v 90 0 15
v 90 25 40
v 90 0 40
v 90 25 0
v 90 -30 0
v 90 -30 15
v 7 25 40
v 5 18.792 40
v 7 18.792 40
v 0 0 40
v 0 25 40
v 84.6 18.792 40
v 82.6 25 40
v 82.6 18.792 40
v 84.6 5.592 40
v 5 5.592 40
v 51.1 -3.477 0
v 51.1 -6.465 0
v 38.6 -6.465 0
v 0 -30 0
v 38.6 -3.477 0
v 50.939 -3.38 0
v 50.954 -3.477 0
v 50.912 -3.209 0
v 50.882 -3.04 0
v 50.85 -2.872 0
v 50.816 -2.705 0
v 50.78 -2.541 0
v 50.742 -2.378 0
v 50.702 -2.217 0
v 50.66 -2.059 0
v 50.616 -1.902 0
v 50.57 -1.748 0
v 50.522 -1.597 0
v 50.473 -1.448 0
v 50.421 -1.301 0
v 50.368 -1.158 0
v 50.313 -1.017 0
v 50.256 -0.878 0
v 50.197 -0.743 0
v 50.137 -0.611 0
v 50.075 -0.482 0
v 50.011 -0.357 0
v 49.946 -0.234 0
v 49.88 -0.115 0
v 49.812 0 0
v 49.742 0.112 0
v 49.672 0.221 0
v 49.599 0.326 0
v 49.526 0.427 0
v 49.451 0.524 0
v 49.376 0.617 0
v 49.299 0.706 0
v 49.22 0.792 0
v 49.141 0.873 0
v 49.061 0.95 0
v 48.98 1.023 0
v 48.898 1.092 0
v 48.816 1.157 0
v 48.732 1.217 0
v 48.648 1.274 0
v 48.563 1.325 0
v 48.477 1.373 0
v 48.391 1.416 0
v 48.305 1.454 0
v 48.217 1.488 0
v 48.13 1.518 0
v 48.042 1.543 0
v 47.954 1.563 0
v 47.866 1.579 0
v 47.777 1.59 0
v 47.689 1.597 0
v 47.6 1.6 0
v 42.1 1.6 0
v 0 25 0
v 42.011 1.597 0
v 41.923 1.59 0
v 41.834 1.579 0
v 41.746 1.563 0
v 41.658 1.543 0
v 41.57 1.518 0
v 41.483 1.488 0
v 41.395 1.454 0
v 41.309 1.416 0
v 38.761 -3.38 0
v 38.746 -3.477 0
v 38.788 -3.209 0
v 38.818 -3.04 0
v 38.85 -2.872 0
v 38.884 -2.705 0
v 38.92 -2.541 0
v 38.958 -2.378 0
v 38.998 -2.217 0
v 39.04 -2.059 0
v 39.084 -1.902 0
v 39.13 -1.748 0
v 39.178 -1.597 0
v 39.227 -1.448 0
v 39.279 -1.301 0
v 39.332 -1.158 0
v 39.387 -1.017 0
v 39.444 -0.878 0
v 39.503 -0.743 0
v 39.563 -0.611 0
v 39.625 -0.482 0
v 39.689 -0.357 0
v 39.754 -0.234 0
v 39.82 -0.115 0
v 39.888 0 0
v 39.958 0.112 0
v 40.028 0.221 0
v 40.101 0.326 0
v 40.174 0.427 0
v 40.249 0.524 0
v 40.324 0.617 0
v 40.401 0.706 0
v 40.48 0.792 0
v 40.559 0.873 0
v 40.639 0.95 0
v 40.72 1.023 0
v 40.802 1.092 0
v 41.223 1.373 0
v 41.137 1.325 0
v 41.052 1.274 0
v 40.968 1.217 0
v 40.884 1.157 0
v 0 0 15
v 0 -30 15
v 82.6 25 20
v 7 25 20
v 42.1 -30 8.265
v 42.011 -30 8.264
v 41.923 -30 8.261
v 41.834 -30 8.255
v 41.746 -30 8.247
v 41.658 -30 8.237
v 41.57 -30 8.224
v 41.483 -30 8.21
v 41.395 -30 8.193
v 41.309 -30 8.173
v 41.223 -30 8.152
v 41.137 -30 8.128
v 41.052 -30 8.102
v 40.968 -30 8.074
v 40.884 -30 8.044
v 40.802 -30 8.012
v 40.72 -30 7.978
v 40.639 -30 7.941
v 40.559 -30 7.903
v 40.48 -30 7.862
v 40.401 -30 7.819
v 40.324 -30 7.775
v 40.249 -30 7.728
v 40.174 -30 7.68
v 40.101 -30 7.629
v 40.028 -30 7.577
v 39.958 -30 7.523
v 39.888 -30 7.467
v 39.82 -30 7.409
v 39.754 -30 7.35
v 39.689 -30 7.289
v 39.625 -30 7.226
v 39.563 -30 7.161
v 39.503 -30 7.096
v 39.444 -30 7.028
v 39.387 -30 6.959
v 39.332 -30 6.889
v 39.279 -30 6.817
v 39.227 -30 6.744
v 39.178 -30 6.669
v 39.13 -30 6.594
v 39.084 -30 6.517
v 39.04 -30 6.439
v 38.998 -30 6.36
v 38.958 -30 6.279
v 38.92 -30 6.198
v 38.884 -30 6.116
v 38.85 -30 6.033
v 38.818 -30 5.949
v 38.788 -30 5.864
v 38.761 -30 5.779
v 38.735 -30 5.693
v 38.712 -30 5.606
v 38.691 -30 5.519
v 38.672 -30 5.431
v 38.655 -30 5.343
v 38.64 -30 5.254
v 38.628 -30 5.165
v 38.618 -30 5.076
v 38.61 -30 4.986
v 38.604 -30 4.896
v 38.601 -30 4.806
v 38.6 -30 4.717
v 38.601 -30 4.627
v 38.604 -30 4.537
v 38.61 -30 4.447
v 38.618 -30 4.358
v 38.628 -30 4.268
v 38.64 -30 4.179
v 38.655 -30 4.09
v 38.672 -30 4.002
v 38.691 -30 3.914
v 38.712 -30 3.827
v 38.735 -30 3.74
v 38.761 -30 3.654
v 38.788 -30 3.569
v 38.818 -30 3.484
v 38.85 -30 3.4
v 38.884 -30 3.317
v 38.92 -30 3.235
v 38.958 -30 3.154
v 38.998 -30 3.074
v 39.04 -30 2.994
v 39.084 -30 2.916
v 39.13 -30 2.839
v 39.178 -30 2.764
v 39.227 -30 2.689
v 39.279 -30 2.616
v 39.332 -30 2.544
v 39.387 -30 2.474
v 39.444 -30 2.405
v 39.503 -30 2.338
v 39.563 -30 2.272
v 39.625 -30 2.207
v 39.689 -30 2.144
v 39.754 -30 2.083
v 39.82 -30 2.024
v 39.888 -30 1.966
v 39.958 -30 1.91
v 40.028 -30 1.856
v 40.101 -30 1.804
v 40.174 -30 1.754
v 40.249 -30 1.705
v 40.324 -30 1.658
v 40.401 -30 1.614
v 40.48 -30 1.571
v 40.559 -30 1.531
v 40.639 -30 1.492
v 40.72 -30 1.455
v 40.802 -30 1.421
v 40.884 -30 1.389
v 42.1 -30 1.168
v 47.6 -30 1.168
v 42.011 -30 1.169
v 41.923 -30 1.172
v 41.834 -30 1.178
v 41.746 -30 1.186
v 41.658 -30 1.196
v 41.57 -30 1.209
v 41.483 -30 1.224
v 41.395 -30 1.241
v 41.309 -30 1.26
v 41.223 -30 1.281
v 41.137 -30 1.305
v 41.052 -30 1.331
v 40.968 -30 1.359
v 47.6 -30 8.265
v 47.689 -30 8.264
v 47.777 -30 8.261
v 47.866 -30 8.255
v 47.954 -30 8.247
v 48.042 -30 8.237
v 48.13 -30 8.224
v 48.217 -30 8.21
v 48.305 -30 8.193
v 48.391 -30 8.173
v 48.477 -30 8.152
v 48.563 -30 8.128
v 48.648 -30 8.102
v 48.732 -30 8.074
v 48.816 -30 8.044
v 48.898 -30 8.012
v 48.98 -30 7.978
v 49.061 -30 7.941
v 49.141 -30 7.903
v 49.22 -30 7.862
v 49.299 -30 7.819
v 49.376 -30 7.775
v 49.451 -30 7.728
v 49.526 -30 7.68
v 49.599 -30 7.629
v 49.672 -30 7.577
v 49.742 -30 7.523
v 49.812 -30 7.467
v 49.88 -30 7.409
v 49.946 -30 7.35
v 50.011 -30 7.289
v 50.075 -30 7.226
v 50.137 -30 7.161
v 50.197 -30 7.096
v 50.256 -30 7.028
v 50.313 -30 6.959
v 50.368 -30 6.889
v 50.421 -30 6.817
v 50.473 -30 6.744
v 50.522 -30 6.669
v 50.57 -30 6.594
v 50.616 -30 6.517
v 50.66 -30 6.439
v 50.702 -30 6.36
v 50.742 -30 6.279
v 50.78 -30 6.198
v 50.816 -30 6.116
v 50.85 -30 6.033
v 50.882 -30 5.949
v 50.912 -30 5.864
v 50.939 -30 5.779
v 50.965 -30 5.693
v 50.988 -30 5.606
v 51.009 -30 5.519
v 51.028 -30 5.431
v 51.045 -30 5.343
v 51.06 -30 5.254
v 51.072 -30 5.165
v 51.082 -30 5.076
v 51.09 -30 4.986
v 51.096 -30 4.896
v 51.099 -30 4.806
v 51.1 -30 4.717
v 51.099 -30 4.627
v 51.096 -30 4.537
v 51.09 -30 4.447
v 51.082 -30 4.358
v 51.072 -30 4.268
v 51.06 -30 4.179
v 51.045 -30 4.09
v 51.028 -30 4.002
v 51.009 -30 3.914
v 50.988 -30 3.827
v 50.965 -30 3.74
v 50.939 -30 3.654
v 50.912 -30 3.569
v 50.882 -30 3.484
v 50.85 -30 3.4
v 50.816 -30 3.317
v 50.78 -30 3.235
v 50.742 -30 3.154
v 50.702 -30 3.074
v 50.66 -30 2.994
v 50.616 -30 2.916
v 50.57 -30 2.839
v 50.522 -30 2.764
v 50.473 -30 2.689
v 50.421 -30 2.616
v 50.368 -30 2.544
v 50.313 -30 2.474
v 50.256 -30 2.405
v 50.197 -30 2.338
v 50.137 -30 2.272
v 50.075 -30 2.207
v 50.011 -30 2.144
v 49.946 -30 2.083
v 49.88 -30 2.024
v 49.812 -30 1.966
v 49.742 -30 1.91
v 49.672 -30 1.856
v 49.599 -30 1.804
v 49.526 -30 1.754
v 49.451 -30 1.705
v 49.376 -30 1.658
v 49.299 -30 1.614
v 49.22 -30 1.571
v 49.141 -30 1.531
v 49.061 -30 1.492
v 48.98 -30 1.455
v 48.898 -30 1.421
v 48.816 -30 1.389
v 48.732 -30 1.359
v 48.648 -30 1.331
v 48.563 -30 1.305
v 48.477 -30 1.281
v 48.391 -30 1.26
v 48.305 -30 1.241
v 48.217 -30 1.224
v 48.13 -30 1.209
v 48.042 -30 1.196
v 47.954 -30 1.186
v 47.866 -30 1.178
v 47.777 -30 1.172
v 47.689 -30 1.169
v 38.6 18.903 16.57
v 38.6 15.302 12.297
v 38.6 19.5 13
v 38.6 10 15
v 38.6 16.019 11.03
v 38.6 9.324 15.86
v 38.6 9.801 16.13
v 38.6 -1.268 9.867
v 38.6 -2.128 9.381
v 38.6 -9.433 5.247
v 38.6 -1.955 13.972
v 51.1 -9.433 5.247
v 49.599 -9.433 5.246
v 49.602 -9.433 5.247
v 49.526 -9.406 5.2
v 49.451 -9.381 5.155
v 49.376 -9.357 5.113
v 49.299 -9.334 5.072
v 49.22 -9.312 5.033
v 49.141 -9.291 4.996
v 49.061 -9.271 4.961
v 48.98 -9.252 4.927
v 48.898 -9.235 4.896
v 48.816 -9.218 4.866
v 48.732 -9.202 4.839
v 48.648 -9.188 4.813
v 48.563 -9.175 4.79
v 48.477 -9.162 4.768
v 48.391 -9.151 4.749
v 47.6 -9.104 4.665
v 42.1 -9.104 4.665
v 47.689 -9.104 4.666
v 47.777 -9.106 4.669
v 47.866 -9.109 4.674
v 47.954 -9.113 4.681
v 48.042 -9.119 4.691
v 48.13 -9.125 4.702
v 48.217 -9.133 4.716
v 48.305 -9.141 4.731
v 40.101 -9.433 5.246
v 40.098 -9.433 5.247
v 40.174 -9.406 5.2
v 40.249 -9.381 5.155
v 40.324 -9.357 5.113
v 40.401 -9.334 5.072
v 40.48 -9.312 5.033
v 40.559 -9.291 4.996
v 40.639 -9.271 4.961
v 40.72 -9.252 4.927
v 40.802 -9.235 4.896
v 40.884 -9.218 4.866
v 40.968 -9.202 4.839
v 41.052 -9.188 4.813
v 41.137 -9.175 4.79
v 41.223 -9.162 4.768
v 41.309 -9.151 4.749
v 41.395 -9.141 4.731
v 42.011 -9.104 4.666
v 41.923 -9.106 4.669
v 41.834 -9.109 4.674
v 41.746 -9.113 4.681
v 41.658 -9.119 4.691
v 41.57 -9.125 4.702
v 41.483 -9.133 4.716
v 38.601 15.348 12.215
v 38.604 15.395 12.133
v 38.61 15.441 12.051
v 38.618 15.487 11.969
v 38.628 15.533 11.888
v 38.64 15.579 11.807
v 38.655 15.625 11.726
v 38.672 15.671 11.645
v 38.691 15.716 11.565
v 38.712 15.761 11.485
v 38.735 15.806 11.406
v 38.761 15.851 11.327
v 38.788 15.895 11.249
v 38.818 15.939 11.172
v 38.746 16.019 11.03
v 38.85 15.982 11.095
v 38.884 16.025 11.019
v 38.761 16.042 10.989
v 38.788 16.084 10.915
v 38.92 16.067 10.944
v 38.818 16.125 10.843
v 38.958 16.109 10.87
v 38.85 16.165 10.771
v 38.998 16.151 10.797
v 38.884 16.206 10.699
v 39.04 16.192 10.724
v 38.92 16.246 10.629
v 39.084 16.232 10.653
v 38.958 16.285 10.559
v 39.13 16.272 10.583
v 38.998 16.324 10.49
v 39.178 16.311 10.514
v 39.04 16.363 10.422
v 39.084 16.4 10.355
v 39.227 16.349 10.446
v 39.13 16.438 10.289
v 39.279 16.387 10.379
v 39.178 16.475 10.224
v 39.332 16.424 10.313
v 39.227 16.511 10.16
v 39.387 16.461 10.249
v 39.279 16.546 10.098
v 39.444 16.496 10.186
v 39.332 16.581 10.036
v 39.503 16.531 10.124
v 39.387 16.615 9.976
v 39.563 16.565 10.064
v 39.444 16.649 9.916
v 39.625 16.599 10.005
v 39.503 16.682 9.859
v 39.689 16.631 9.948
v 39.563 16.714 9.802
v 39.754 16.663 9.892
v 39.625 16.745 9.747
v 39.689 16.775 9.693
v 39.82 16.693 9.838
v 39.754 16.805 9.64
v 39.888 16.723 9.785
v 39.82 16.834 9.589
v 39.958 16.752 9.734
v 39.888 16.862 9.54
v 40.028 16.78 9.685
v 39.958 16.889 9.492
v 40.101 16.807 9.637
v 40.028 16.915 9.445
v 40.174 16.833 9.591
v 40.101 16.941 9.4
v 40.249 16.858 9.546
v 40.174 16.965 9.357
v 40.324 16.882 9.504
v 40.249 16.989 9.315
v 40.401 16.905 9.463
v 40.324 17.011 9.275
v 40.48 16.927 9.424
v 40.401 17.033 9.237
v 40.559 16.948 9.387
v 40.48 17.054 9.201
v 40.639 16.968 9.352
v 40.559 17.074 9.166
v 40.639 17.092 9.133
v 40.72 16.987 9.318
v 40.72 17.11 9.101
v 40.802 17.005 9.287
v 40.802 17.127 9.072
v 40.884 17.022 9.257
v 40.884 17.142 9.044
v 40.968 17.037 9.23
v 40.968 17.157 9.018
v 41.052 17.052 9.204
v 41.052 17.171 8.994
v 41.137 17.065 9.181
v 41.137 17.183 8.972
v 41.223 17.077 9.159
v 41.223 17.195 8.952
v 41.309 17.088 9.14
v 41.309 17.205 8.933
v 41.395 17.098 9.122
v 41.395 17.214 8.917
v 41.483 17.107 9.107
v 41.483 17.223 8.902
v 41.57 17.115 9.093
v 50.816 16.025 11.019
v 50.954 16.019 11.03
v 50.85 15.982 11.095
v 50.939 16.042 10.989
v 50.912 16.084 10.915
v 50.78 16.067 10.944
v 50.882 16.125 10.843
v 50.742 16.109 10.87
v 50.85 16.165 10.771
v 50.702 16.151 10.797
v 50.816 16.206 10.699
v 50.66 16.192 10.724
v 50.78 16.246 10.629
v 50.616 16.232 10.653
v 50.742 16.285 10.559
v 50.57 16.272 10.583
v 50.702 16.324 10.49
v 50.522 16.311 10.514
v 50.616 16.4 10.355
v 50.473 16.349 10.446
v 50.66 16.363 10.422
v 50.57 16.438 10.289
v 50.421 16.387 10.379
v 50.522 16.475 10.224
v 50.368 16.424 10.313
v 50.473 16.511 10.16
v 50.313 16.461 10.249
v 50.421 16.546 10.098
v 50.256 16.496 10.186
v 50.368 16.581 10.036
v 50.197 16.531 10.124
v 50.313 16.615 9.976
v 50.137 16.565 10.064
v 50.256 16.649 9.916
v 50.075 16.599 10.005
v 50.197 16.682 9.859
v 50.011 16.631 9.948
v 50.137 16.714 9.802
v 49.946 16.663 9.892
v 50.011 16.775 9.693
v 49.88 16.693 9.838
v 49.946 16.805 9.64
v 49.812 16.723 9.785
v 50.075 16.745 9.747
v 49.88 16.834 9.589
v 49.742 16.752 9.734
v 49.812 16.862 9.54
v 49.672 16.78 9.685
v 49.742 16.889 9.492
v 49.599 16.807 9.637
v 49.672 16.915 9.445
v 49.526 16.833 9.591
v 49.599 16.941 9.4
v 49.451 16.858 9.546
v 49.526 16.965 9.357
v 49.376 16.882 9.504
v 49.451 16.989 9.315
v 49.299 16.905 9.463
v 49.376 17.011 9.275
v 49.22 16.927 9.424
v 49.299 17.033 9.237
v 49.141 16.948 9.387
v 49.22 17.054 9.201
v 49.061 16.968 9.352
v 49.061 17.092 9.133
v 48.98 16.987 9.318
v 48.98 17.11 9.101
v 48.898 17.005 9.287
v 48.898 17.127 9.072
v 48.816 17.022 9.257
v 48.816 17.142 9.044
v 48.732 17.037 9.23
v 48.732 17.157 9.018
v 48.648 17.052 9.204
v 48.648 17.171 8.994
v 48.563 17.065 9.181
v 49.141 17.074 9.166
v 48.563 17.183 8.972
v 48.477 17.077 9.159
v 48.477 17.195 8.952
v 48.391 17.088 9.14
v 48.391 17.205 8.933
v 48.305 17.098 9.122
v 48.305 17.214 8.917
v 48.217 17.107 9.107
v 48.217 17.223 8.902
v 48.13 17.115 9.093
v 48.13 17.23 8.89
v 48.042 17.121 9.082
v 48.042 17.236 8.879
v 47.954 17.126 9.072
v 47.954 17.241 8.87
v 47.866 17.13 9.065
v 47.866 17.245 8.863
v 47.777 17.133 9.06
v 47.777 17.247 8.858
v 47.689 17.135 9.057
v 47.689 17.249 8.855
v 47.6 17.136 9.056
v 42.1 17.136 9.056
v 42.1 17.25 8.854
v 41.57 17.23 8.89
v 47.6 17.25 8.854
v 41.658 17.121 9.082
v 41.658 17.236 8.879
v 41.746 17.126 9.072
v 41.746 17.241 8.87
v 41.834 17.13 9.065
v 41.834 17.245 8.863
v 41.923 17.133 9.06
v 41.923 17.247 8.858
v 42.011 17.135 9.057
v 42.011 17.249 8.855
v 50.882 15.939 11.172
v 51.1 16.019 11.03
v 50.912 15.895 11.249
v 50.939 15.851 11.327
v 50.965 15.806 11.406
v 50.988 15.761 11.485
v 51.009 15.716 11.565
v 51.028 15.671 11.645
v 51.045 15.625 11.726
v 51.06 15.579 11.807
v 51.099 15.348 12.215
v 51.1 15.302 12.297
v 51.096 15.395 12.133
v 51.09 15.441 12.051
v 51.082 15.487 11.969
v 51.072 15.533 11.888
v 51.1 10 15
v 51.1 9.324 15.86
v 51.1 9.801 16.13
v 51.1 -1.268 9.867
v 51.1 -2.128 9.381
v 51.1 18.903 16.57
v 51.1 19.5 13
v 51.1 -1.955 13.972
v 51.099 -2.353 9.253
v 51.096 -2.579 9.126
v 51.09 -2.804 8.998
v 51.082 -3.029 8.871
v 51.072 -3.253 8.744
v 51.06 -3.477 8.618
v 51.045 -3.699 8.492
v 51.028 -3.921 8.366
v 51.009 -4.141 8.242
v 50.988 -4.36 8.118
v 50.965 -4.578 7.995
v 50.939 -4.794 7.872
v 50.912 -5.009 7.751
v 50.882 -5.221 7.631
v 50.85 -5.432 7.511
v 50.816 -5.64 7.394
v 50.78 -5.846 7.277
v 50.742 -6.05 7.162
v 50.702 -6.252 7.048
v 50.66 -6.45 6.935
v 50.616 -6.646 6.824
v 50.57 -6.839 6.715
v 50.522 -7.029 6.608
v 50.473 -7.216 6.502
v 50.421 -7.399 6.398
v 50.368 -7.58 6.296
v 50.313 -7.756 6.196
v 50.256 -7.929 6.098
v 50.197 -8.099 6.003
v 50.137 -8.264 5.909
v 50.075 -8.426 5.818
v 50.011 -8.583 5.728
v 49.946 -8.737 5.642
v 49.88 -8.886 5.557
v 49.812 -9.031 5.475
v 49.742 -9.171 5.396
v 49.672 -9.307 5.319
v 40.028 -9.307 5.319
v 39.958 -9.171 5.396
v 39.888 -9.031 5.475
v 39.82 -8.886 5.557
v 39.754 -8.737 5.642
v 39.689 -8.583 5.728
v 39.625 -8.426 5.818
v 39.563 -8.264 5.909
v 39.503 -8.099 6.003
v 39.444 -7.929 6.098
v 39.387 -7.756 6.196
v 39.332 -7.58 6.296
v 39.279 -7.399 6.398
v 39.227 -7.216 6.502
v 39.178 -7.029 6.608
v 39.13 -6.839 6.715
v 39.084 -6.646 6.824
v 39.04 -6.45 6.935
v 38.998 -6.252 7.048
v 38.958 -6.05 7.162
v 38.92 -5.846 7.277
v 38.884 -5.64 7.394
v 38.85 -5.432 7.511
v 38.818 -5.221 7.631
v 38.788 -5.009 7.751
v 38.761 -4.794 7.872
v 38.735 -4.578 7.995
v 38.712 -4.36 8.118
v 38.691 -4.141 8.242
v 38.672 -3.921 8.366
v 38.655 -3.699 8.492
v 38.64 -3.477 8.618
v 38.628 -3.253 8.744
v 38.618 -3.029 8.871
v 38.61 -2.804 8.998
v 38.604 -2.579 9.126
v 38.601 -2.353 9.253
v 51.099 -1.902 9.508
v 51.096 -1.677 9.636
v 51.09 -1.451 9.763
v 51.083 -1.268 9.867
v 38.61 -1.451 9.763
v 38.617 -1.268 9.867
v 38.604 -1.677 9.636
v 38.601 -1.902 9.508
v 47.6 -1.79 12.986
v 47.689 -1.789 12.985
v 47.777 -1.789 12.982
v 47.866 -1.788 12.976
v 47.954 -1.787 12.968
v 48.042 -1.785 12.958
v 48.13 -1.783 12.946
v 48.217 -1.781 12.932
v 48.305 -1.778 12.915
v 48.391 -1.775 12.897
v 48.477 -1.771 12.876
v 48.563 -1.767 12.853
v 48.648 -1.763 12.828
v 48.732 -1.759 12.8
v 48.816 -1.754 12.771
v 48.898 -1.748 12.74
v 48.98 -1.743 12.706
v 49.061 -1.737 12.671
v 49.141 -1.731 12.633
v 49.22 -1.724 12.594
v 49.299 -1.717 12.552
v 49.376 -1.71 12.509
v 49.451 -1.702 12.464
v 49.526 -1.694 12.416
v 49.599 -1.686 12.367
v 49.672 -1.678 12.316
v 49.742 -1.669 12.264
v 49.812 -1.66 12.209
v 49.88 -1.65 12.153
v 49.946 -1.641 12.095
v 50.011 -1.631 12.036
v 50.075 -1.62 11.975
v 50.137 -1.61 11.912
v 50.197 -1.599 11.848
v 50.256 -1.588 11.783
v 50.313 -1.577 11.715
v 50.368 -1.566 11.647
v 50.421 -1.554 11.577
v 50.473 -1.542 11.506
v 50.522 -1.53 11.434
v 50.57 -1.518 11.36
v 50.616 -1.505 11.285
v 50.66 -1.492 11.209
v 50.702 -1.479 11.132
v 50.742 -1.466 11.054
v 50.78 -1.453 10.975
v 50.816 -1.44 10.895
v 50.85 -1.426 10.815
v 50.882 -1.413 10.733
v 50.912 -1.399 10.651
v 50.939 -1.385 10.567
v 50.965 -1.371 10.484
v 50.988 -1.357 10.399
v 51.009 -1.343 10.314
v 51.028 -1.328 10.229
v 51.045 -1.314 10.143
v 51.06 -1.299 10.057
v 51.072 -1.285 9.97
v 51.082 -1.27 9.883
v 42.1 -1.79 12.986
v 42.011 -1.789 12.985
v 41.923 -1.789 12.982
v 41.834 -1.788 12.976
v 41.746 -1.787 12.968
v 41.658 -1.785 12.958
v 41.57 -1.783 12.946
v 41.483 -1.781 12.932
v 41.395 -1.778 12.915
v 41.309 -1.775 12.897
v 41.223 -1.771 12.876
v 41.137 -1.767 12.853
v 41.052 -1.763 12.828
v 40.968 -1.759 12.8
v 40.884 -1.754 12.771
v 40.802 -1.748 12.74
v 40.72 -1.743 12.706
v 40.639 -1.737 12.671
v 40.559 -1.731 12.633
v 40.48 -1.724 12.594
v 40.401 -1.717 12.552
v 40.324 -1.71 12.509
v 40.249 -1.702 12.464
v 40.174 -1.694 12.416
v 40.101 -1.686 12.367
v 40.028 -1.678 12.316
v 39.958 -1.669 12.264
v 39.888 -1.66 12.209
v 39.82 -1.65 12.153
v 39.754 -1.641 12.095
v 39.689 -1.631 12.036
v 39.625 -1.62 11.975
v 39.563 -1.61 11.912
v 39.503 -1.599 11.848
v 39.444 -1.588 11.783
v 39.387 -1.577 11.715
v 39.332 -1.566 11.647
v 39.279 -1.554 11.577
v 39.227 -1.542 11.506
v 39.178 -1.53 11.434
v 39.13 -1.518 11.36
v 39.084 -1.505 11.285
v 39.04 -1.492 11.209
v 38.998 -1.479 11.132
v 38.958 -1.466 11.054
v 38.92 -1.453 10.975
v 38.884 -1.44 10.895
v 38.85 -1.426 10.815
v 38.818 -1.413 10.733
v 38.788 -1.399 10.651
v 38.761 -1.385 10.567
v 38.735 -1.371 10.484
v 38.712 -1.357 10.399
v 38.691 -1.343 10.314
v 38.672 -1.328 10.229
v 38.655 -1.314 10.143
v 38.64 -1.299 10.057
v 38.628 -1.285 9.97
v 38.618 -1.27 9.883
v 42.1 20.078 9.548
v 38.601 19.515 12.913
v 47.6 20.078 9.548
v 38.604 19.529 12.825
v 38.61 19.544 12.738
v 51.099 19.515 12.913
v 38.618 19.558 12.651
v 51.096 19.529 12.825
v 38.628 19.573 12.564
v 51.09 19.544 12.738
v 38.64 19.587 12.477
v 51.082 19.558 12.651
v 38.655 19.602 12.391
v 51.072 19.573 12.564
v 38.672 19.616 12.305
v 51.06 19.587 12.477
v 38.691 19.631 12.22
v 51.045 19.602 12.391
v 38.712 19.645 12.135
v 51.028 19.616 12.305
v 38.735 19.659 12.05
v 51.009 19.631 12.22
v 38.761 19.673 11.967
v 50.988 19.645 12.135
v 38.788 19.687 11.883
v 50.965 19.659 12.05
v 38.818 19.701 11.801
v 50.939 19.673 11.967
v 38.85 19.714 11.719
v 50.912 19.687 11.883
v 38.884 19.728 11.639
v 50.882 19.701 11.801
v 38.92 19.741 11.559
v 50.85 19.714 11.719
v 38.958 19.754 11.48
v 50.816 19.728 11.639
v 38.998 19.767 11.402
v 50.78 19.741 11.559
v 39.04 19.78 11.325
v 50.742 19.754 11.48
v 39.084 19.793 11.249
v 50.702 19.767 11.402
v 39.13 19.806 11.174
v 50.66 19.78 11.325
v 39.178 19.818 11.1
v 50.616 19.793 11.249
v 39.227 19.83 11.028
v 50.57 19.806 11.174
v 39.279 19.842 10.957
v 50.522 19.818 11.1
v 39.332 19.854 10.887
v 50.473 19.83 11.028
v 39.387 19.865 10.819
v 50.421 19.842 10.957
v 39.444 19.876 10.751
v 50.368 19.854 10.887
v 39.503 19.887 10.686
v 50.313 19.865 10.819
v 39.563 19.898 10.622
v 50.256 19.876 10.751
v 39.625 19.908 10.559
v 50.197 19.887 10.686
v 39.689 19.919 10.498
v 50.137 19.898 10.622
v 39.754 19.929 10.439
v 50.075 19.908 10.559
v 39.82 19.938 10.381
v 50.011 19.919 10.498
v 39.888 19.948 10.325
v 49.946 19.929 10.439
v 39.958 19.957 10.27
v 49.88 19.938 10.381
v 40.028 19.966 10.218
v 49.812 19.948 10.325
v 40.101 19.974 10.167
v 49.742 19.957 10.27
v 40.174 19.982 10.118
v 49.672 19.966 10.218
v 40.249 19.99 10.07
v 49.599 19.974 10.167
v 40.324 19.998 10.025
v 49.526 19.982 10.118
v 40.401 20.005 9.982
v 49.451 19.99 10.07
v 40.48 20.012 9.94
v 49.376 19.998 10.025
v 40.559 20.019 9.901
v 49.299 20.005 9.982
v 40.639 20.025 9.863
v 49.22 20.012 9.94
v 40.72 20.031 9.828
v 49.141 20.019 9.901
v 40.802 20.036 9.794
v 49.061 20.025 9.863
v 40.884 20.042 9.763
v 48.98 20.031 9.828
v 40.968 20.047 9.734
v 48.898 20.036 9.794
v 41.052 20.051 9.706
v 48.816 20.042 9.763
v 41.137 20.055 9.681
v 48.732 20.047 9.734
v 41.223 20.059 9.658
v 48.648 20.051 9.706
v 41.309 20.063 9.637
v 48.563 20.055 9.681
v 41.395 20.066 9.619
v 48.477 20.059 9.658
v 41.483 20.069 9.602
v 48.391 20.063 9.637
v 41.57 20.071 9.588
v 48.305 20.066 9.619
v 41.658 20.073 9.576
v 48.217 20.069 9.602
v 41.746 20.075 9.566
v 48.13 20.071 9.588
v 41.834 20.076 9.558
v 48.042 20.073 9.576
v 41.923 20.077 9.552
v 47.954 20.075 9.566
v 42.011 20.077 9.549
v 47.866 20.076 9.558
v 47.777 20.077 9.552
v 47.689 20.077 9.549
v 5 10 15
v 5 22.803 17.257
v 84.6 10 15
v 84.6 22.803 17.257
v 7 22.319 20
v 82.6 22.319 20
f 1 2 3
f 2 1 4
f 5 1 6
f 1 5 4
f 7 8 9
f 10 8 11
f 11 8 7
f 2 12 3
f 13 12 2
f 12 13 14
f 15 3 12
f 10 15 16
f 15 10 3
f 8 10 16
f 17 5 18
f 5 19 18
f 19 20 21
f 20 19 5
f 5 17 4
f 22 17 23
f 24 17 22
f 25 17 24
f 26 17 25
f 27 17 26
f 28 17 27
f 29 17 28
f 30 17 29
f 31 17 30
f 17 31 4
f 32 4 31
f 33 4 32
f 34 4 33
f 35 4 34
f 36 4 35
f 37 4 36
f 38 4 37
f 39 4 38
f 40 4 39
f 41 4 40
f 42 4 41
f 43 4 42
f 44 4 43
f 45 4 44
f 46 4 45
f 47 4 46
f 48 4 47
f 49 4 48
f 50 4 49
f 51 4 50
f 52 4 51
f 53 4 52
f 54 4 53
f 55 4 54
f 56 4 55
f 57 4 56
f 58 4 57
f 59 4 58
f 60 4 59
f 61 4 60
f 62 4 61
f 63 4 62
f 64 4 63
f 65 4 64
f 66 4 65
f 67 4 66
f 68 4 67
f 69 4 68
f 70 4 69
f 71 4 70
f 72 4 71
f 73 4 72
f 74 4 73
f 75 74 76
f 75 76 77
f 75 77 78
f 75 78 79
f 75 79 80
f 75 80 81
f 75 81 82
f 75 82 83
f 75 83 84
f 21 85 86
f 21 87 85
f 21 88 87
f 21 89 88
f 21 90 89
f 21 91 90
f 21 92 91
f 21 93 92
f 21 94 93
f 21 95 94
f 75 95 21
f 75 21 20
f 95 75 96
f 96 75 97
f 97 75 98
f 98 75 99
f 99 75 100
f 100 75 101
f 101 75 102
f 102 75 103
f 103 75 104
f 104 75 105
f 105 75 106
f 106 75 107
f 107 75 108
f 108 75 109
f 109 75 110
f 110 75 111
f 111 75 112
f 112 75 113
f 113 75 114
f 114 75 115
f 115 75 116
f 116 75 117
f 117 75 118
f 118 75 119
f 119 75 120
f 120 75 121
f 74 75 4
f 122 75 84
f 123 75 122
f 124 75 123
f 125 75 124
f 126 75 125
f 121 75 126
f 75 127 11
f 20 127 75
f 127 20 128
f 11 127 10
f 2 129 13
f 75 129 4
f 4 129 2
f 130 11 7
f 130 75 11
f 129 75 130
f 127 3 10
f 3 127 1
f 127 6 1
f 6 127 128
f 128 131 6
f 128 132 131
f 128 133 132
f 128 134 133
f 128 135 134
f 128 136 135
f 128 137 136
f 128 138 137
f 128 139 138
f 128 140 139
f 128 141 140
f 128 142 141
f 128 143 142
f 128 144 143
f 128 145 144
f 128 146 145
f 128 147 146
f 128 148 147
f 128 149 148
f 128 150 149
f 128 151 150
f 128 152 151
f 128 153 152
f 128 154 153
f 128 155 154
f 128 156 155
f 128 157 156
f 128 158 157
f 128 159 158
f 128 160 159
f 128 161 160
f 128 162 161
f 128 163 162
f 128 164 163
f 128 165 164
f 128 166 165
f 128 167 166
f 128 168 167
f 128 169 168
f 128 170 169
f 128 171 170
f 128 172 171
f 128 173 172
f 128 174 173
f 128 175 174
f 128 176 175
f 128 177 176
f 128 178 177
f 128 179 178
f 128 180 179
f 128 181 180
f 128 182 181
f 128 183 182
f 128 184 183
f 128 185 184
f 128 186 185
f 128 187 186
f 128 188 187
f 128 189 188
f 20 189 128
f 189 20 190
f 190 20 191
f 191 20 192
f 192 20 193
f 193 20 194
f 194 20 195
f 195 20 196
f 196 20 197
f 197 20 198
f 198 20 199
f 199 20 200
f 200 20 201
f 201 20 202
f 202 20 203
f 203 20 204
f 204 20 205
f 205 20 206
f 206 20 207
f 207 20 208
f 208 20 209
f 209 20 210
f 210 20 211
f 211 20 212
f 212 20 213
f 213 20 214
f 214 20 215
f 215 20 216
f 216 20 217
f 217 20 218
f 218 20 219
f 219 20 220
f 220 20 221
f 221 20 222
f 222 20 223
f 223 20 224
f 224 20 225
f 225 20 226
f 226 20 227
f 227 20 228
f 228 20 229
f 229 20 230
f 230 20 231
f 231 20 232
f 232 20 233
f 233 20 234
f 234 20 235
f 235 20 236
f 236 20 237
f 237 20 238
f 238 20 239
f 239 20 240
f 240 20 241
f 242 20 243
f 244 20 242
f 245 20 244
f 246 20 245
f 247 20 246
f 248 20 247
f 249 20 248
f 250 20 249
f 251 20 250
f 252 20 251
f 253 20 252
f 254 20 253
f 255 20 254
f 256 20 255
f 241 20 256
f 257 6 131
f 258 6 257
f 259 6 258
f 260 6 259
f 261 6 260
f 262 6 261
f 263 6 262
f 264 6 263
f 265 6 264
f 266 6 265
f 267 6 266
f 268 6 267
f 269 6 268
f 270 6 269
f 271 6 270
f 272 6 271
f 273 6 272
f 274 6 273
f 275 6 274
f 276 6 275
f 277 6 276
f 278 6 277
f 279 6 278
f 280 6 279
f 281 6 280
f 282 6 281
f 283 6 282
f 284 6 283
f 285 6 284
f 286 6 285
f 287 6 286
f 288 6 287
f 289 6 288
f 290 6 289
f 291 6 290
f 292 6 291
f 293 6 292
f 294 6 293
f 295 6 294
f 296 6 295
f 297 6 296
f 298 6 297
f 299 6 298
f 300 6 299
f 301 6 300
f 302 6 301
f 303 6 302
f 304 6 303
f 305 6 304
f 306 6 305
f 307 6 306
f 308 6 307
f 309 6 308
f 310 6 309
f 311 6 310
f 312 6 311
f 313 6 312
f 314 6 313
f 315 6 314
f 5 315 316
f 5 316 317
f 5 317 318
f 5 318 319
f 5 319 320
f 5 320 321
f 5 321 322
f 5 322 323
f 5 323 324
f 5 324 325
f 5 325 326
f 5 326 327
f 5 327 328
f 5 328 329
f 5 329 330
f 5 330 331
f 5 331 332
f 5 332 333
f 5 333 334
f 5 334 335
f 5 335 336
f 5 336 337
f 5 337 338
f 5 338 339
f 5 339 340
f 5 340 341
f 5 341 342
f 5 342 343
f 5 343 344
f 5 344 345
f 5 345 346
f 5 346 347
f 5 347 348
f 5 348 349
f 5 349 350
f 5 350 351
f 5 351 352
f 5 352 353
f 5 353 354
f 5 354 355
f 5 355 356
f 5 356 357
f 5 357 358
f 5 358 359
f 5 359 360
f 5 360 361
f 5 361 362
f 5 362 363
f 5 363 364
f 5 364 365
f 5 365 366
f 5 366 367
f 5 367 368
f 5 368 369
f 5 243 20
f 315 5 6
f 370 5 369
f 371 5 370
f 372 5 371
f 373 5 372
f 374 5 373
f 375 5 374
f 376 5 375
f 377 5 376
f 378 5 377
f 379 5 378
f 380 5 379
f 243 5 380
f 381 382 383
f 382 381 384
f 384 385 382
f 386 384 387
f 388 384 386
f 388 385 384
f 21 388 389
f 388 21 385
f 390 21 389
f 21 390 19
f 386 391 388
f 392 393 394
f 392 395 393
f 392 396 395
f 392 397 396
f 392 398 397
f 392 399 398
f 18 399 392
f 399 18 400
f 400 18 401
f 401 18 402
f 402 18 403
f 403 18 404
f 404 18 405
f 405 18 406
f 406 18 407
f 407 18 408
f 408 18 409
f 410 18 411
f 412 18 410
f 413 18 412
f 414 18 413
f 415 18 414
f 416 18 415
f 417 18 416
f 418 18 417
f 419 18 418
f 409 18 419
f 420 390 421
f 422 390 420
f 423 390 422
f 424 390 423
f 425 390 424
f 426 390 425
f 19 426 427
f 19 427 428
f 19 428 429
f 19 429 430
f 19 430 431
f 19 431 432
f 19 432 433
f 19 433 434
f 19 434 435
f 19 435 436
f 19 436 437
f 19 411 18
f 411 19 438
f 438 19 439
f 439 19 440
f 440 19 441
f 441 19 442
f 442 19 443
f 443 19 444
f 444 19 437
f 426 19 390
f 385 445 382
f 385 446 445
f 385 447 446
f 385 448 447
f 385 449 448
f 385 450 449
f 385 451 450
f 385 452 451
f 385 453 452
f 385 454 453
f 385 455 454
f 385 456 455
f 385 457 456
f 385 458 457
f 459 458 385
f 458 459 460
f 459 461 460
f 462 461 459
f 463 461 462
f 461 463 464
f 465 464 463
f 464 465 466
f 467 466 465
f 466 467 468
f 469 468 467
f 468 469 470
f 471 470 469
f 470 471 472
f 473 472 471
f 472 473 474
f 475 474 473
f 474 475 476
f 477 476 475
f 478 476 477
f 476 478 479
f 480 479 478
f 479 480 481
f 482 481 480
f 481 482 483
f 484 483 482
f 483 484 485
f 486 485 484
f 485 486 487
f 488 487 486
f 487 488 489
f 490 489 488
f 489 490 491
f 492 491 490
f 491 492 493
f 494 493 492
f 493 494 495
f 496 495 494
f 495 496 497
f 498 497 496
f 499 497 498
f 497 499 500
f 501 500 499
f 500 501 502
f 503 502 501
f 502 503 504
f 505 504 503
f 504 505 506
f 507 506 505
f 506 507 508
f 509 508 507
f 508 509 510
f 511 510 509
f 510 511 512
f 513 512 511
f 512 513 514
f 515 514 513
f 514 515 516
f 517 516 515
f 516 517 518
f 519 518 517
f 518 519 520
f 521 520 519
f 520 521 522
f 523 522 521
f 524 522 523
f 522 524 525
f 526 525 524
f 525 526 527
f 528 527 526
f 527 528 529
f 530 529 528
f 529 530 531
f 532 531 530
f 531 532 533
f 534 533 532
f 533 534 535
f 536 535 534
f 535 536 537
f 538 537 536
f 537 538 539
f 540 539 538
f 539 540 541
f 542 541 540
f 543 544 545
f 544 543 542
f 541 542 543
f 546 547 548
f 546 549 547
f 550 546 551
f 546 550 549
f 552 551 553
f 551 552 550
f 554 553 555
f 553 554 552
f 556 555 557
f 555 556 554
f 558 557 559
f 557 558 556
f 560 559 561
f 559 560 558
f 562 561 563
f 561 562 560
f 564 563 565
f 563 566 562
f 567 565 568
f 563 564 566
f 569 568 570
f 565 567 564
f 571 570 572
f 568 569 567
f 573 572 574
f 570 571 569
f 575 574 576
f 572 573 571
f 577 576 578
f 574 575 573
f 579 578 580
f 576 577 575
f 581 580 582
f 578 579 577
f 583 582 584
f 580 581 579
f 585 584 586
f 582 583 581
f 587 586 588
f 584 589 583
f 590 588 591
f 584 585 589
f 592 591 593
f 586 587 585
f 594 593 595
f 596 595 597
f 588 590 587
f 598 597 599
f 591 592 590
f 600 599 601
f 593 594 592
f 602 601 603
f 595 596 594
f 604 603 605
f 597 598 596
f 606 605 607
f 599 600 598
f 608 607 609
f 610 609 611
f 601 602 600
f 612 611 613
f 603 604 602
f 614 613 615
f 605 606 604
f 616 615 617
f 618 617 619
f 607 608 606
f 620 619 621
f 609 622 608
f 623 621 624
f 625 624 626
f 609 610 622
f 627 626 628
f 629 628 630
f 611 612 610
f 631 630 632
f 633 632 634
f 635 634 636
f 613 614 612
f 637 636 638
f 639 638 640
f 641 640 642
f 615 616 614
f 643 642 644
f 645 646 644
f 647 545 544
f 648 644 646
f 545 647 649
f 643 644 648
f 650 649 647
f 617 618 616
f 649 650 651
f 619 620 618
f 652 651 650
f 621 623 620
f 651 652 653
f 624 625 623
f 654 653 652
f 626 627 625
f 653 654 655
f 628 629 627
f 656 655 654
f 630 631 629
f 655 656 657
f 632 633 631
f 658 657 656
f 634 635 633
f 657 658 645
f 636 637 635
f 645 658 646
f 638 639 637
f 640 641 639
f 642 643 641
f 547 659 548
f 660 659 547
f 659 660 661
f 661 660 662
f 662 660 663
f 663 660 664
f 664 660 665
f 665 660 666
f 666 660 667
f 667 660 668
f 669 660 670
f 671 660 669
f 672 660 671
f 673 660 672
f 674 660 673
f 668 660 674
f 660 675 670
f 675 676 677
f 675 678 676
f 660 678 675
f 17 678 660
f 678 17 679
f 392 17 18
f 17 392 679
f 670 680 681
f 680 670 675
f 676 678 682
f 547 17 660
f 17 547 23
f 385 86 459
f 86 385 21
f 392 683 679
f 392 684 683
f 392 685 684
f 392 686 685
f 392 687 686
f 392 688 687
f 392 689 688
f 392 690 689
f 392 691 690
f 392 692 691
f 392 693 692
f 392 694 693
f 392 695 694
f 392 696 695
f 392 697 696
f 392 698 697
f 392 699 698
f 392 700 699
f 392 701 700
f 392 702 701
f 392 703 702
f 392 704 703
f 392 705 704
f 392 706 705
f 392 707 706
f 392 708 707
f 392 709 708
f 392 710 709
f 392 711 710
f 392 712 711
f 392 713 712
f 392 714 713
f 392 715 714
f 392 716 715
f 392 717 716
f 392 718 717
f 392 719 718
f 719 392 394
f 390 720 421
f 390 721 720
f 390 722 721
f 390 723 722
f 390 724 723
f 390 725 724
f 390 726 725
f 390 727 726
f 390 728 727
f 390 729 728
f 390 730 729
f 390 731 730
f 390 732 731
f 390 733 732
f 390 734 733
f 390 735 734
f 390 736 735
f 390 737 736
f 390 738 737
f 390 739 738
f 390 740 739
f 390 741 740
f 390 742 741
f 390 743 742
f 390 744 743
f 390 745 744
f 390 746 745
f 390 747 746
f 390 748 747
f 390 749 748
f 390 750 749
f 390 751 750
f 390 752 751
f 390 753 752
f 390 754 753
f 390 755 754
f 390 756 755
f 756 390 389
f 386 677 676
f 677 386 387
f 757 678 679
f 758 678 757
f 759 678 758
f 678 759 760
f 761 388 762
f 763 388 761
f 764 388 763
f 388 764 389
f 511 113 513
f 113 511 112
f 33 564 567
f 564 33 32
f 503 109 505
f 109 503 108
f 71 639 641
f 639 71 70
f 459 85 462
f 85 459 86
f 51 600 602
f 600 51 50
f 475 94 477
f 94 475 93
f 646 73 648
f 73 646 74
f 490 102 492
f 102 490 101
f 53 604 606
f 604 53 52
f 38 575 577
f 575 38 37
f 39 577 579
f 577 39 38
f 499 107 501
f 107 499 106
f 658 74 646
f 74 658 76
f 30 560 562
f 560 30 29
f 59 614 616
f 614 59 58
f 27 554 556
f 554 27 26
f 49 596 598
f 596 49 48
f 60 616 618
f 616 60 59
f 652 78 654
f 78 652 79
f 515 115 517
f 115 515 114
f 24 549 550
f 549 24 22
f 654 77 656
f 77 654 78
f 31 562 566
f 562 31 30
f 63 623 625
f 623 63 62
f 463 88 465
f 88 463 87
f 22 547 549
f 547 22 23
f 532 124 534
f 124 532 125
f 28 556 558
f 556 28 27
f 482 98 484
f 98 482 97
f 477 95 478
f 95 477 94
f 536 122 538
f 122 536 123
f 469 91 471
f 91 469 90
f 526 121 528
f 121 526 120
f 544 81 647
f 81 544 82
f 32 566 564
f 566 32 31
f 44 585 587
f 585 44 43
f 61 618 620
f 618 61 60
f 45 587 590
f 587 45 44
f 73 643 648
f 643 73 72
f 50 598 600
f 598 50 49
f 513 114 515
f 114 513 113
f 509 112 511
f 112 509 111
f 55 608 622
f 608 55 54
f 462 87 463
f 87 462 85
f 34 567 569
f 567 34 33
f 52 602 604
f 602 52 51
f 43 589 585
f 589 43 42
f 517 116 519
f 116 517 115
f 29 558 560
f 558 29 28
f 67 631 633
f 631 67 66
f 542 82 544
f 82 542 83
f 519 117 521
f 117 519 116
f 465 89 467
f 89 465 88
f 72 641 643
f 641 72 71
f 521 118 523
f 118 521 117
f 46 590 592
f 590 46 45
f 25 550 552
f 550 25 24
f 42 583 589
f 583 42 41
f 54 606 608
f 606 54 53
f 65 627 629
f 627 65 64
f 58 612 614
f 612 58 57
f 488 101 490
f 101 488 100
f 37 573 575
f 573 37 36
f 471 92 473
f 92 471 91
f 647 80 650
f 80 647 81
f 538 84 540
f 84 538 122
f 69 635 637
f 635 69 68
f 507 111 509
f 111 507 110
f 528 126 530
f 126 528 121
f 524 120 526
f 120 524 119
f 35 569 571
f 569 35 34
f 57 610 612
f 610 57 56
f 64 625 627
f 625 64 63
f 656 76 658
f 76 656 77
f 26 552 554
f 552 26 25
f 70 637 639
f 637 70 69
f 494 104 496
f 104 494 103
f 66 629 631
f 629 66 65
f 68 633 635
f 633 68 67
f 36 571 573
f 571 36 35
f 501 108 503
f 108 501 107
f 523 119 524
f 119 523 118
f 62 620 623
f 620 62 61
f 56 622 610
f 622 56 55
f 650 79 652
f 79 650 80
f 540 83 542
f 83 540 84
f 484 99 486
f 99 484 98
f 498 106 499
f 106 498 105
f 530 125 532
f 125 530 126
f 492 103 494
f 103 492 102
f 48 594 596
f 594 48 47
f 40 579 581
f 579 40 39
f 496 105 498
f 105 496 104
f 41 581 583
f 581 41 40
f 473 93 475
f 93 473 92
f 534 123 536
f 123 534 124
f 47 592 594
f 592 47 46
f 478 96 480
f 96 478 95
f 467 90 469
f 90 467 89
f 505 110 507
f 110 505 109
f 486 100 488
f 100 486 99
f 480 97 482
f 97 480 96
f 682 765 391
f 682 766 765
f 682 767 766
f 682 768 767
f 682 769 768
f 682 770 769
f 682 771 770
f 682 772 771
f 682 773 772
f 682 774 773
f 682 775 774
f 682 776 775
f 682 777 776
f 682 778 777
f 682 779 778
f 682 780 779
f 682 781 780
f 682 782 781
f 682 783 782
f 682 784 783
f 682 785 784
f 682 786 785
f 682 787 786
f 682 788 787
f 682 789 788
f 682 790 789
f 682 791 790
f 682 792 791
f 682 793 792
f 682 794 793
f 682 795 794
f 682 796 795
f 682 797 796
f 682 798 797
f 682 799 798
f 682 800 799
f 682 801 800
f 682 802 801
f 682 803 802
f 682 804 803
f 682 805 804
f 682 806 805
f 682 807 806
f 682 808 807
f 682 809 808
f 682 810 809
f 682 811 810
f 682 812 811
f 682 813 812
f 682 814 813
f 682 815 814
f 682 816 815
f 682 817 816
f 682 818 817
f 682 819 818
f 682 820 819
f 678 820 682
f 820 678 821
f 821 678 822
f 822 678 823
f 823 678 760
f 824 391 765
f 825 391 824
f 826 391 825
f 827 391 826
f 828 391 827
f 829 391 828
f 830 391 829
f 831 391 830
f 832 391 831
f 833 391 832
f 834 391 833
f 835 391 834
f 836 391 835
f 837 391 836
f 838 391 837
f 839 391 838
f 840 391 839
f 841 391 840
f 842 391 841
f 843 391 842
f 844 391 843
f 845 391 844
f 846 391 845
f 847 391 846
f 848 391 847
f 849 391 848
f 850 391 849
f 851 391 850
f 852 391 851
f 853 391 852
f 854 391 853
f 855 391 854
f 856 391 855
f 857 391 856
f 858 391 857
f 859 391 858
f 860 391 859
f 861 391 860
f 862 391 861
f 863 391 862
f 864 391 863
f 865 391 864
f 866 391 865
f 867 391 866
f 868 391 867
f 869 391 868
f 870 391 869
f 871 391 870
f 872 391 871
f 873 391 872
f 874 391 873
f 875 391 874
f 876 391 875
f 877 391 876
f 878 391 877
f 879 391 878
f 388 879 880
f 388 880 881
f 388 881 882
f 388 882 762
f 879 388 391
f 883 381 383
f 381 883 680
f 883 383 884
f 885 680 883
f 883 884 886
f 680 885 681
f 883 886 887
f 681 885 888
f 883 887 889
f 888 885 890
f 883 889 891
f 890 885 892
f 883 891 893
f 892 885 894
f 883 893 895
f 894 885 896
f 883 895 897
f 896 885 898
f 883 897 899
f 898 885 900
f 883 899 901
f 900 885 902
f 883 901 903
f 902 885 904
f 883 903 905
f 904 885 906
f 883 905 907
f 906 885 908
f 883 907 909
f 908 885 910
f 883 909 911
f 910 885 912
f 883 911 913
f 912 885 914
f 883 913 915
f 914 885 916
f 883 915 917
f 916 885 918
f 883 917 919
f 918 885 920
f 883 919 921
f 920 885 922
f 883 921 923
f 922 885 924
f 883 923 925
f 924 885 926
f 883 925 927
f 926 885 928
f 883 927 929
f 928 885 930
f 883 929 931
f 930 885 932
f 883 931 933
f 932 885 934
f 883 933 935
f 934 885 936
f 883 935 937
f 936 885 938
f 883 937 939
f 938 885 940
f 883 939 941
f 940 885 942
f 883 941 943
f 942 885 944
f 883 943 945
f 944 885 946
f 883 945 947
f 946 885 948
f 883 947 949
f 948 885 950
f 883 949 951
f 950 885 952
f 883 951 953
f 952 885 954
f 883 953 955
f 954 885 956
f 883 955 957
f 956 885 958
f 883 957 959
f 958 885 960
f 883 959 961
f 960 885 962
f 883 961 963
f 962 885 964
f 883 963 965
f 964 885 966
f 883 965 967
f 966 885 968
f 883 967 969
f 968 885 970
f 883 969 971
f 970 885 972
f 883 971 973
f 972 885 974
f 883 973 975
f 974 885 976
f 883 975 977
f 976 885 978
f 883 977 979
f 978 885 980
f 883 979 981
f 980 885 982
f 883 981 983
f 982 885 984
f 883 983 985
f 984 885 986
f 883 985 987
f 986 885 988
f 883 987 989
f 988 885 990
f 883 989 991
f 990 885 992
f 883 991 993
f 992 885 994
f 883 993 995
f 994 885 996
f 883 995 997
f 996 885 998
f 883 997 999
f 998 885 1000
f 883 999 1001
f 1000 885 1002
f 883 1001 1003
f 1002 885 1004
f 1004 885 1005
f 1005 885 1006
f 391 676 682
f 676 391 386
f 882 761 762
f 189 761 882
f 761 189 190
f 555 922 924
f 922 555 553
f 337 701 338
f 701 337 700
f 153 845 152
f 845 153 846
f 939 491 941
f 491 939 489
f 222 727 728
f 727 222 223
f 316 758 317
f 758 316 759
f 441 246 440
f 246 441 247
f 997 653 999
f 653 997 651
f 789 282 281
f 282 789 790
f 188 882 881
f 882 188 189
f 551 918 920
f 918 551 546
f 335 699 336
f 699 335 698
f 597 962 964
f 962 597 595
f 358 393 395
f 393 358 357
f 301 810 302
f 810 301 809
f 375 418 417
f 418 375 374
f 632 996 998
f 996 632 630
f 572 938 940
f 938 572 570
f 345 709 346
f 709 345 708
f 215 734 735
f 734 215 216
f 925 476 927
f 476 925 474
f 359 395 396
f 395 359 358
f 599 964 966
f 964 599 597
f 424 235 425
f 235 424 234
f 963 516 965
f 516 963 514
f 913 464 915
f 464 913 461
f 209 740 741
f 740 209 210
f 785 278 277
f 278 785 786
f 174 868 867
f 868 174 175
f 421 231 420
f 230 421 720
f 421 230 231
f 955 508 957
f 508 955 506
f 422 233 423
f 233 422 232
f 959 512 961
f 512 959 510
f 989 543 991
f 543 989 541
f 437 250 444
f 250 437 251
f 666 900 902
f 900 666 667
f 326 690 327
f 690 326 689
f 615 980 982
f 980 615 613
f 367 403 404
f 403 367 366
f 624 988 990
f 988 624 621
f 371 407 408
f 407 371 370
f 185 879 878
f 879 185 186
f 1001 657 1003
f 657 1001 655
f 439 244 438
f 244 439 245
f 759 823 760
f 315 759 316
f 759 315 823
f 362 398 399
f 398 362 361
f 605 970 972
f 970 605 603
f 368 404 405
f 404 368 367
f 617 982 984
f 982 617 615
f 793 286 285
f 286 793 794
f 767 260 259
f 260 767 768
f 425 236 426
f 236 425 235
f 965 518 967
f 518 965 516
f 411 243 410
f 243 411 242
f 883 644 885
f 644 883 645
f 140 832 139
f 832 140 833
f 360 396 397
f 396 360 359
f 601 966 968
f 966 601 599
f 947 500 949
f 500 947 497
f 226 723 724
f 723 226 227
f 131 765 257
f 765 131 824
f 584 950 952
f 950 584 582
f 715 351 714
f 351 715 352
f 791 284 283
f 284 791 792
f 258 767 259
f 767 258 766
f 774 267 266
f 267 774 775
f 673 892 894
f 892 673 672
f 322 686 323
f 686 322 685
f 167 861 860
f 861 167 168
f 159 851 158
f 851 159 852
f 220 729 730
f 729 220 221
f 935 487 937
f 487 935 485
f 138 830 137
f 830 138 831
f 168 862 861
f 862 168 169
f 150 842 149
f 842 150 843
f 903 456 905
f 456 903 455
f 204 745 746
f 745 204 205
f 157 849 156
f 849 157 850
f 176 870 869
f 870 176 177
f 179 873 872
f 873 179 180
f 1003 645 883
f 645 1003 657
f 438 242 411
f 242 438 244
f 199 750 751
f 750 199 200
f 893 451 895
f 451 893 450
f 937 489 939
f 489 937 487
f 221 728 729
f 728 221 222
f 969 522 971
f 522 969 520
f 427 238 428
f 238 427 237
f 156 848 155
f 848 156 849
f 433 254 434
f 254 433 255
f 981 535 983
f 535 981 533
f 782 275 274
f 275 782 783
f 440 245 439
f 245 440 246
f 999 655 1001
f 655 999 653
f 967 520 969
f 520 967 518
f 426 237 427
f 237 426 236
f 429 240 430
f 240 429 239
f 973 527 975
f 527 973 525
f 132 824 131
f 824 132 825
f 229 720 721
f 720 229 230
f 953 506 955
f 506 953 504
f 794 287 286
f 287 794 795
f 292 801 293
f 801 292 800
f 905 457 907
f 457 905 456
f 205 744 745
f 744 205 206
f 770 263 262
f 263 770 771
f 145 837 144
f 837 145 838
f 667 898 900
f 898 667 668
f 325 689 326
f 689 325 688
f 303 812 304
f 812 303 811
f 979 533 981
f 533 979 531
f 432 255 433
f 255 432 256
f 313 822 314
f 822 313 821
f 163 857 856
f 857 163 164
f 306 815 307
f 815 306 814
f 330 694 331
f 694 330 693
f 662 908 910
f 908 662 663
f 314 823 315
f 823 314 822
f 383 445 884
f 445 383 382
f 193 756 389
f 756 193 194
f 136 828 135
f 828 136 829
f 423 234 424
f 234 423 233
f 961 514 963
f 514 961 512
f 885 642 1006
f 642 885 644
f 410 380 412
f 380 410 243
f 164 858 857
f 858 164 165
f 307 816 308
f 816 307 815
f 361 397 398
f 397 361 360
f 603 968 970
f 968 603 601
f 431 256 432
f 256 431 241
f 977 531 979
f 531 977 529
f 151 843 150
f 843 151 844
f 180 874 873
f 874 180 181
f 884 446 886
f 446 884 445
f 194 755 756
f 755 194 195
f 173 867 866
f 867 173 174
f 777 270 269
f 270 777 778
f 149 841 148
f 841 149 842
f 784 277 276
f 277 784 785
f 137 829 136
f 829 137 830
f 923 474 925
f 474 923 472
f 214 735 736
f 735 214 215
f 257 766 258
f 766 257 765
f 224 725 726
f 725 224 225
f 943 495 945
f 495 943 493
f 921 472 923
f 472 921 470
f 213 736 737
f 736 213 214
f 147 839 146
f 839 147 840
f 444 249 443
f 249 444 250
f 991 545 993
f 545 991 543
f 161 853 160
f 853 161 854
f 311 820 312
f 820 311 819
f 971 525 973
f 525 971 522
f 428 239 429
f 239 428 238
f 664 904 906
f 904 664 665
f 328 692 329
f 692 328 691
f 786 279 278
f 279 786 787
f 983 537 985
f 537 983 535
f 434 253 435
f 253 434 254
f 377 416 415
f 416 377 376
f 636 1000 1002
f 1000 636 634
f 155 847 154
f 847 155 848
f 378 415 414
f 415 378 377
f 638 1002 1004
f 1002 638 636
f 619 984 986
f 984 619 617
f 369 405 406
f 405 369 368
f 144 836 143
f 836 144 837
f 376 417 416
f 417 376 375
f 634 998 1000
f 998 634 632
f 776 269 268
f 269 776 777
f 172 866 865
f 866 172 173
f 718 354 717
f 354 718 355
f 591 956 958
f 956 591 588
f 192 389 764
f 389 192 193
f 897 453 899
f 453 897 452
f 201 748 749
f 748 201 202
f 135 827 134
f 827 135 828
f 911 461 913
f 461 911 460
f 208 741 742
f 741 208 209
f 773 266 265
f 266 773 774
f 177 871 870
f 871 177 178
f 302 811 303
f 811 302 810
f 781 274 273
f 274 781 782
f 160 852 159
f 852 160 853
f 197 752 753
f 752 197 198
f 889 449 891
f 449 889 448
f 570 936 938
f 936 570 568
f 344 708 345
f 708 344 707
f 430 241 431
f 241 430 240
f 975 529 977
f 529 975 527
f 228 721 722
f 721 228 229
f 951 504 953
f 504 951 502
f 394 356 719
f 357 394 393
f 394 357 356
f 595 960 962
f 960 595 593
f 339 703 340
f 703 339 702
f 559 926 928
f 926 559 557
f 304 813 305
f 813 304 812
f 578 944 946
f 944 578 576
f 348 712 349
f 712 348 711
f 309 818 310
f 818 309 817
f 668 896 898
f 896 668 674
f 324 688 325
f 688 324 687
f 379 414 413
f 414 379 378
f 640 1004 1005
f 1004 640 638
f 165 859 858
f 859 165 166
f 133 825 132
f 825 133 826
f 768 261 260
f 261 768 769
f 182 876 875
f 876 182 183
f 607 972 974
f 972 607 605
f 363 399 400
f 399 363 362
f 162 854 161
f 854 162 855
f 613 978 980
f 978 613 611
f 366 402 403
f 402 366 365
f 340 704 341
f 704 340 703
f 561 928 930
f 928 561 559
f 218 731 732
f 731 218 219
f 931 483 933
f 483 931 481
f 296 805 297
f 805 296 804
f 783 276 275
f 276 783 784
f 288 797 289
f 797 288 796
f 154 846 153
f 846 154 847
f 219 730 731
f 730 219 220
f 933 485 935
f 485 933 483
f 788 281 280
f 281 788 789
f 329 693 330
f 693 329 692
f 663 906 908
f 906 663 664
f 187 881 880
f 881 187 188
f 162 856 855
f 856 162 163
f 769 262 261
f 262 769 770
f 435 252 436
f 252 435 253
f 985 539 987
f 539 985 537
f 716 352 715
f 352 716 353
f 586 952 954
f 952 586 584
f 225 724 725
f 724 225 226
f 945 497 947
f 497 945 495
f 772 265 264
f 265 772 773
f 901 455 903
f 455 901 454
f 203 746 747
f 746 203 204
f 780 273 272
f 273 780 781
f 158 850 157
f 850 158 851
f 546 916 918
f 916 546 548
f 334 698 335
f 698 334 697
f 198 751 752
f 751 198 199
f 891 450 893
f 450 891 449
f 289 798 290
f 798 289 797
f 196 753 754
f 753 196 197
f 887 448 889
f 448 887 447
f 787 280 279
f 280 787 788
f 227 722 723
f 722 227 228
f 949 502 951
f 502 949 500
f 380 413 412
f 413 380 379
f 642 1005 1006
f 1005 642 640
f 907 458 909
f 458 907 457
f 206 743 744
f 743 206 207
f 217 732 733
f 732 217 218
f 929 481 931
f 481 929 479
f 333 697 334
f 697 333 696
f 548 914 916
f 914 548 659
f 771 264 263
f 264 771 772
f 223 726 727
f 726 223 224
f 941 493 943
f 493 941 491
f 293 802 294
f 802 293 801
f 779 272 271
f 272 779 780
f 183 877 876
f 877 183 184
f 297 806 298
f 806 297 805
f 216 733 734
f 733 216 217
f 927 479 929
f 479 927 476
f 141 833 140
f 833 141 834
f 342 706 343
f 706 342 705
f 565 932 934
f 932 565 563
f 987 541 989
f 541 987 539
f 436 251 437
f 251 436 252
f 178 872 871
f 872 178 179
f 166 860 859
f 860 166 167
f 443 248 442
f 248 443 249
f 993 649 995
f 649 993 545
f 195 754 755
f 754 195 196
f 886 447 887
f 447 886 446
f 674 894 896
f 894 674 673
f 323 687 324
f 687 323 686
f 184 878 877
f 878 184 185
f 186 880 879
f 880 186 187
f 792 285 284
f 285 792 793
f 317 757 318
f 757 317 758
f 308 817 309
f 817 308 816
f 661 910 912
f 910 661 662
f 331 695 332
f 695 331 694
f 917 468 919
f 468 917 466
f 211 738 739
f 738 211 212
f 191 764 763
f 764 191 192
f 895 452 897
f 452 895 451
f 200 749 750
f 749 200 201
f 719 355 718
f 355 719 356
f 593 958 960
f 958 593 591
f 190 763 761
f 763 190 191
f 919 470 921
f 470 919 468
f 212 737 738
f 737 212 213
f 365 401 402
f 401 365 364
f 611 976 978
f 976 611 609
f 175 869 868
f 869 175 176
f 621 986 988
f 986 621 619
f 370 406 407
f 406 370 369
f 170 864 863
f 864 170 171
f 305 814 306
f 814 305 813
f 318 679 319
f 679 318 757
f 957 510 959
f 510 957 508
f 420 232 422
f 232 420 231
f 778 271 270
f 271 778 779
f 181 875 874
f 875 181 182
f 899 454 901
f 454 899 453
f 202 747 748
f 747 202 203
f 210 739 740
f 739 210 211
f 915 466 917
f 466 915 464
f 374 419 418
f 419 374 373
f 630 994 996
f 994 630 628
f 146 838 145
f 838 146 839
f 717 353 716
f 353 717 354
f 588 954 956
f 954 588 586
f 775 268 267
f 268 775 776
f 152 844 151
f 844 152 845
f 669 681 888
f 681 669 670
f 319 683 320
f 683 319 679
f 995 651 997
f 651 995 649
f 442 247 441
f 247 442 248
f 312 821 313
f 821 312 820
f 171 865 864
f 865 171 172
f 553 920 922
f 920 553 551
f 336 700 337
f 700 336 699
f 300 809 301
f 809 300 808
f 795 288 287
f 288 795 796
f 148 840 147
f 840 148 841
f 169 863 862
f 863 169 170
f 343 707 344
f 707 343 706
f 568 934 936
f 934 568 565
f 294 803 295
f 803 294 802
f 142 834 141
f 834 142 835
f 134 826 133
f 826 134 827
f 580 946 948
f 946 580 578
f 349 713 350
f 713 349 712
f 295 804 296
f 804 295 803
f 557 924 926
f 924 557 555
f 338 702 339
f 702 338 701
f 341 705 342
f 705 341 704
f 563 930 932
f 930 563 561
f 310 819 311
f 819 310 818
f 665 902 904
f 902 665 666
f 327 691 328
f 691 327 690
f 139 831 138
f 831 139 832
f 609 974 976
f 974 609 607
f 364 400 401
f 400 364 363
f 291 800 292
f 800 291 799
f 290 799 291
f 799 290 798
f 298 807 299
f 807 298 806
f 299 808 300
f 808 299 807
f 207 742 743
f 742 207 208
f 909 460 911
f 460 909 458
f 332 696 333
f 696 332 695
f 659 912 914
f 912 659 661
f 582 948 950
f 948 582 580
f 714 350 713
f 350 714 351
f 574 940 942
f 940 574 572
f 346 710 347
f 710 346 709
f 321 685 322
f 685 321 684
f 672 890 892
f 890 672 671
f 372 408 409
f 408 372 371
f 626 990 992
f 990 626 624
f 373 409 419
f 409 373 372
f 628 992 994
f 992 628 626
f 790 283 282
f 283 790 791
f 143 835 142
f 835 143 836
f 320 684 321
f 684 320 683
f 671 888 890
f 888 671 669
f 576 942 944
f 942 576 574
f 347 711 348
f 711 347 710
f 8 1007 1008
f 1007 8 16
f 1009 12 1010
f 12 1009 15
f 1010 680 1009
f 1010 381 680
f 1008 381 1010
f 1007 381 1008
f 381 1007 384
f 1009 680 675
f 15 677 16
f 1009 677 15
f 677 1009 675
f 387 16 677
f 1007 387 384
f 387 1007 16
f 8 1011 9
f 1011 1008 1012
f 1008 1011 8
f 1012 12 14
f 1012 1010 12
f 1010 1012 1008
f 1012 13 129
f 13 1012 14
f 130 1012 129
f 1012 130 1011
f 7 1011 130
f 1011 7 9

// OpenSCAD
height = 166;
width = 79.6;
thickness = 13;



usbWidth = 12.5; // 12
usbHeight = 7; // 6.5
usbLength = 21; // 20.5


usbPlugWidth = 8.2;
usbPplugHeight = 2.3;
usbPplugLength = 9;

usbPplugOverlap = 2;


module usbPlug() {

  // Reference Cube
  translate([0, -usbHeight/2-1, 0])
  cube([usbWidth, usbHeight/2+1, usbLength]);

  // Plug Body
  translate([usbHeight/2, 0, 0]) {
    hull() {
      cylinder(d=usbHeight, h=usbLength, $fn=248);

      translate([usbWidth - usbHeight, 0, 0])
      cylinder(d=usbHeight, h=usbLength, $fn=248);
    }
  }

  
  // Plug
  rotate([90, 0, 0]) {
    translate([(usbPplugHeight/2) + ((usbWidth - usbPlugWidth)/2), (usbPplugHeight/2) + usbPplugOverlap, usbHeight/2]) {
      hull() {
        cylinder(d=usbPplugHeight, h=usbPplugLength, $fn=248);

        translate([usbPlugWidth - usbPplugHeight, 0, 0])
        cylinder(d=usbPplugHeight, h=usbPplugLength, $fn=248);
      }
    }
  }
}

module usbPlugHole() {
  // Reference Cube
  translate([0, -usbHeight/2-1, 0])
  cube([usbWidth, usbHeight/2+1, usbLength]);

  // Plug Body
  translate([usbHeight/2, 0, 0]) {
    hull() {
      cylinder(d=usbHeight, h=usbLength + 60, $fn=248);

      translate([usbWidth - usbHeight, 0, 0])
      cylinder(d=usbHeight, h=usbLength + 60, $fn=248);
    }
  }

  rotate([-20, 0, 0]) {
    translate([0, -usbHeight/2-4, 4])
    cube([usbWidth, usbHeight/2+4, usbLength + 4]);


    translate([usbHeight/2, -1, 4]) {
      hull() {
        cylinder(d=usbHeight, h=usbLength + 4, $fn=248);

        translate([usbWidth - usbHeight, 0, 0])
        cylinder(d=usbHeight, h=usbLength + 4, $fn=248);
      }
    }
  }

  
  // Plug
  rotate([90, 0, 0]) {
    translate([(usbPplugHeight/2) + ((usbWidth - usbPlugWidth)/2), (usbPplugHeight/2) + usbPplugOverlap, usbHeight/2]) {
      hull() {
        cylinder(d=usbPplugHeight, h=usbPplugLength, $fn=248);

        translate([usbPlugWidth - usbPplugHeight, 0, 0])
        cylinder(d=usbPplugHeight, h=usbPplugLength, $fn=248);
      }
    }
  }
}



//usbPlugHole();

// loading cable in the middle of both directions
difference() {
  // stand
  union() {
    cube([90, 25, 40]);
    translate([0, -30, 0]) cube([90, 40, 15]);
  }
  
  // phone
  translate([5, 10, 15])
  rotate([10, 0, 0])
  cube([width, thickness, height]);


  // plug
  translate([12.5, 0.5, 7/2])
  translate([width / 2 -1.2, 19, 9.5])
  rotate([-99.5, 0, 180])
  usbPlugHole();
  //usbPlug();

  //translate([(width + 10) / 2, 19, -5])
  //rotate([10, 0, 0])
  //translate([0,0,-20])
  //cylinder(d = 10, h = 80);


  //translate([(width + 10) / 2, 19, 7])
  //rotate([100, 0, 0])
  //cylinder(d = 10, h = 50);

  // front opening
  translate([7, 15, 20])
  cube([width - 4, thickness, height]);
}
